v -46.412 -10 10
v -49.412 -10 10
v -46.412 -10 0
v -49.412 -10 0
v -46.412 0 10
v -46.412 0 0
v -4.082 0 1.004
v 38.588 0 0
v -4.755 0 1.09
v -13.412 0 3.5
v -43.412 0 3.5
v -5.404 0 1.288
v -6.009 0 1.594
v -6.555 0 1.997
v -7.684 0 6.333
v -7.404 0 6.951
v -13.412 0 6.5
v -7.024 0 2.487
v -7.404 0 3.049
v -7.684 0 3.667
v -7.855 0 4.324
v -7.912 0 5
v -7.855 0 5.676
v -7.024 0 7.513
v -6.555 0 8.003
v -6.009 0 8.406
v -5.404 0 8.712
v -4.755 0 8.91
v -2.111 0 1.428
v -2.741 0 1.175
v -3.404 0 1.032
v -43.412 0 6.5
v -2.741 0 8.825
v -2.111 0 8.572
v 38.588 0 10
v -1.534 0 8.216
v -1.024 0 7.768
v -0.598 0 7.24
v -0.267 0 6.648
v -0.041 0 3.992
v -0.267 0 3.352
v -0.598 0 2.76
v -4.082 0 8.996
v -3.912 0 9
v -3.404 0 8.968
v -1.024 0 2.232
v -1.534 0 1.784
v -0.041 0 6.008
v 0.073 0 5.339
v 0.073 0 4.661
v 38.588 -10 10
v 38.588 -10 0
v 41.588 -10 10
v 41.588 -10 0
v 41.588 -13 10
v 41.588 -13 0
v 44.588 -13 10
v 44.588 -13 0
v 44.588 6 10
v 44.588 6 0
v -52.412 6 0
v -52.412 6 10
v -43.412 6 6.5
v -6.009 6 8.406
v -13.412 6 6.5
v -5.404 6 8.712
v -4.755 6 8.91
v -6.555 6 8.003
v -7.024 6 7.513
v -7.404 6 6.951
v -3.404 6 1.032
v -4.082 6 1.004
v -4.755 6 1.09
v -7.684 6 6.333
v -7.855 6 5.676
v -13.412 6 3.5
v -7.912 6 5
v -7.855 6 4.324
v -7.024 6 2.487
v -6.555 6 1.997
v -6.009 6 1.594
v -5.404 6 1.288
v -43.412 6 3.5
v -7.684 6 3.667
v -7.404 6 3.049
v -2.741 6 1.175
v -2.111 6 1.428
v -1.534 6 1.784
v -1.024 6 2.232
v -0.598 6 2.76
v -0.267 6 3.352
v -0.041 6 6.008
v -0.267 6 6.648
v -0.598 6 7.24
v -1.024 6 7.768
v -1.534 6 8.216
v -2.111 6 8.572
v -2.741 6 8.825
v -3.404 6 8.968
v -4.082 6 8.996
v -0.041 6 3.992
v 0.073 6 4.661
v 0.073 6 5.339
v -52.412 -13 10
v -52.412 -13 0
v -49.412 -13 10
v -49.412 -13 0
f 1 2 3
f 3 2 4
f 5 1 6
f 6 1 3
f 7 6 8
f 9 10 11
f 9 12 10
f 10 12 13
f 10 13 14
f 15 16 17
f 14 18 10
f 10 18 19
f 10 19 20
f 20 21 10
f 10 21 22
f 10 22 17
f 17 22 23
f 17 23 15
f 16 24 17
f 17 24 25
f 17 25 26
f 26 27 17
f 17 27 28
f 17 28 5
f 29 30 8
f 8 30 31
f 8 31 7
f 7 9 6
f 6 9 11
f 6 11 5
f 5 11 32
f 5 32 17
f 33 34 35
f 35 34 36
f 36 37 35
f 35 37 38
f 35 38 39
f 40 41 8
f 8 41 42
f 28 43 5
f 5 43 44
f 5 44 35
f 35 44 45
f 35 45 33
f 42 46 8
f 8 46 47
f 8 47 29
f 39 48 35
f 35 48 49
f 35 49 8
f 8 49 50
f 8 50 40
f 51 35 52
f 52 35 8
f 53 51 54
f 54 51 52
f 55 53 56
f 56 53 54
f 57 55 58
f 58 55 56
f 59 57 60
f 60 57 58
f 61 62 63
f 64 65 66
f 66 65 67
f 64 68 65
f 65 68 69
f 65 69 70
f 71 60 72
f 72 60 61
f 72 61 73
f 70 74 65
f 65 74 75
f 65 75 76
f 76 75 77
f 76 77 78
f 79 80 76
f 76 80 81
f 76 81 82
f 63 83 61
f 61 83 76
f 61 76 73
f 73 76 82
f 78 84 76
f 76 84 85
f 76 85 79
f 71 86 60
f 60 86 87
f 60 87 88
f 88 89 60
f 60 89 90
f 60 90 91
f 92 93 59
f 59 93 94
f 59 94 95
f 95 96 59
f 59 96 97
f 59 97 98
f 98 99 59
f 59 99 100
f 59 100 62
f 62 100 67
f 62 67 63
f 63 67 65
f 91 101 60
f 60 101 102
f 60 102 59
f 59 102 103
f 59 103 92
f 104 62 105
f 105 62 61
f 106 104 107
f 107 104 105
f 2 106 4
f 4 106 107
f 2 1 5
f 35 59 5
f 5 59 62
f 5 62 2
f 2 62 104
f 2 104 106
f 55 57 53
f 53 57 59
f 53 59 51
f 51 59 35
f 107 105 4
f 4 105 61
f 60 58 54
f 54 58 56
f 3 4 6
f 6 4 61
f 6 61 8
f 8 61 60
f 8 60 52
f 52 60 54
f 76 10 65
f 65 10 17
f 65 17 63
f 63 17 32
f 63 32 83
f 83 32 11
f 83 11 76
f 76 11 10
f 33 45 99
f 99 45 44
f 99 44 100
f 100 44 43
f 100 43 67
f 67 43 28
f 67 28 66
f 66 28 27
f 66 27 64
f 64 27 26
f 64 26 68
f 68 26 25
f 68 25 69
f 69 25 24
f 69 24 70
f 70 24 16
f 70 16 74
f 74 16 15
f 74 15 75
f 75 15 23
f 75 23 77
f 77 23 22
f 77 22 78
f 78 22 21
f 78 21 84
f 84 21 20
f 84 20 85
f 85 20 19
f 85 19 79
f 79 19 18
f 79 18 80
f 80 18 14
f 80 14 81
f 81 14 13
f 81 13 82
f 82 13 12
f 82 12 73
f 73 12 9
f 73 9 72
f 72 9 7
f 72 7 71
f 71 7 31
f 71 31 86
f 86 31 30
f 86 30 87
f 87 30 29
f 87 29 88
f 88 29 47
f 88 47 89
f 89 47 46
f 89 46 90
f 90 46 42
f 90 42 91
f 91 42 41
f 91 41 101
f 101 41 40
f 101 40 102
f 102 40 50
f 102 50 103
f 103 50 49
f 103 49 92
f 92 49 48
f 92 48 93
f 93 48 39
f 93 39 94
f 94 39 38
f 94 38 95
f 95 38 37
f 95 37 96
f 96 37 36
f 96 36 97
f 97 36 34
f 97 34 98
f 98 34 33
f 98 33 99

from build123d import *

# Parameters (mm, degrees)
SALIENTE_EXTRUIR1_DEPTH = 10
CROQUIS4_R              = 4
CROQUIS4_W              = 30
CROQUIS4_H              = 3
CORTAR_EXTRUIR1_DEPTH   = 10


with BuildPart() as part:
    # Croquis2 → Saliente-Extruir1 (new body)
    with BuildSketch(Plane.XY):
        Polygon((-43.412140575, 0), (35.587859425, 0), (38.587859425, 0), (38.587859425, -10), (41.587859425, -10), (41.587859425, -13), (44.587859425, -13), (44.587859425, 6), (-52.412140575, 6), (-52.412140575, -13), (-49.412140575, -13), (-49.412140575, -10), (-46.412140575, -10), (-46.412140575, 0), align=None)
    extrude(amount=SALIENTE_EXTRUIR1_DEPTH)

    # Croquis4 → Cortar-Extruir1 (cut)
    with BuildSketch(Plane(origin=(0, 6, 0), x_dir=(1, 0, 0), z_dir=(0, 1, 0))):
        with Locations((-3.912140575, -5)):
            Circle(CROQUIS4_R)
        with Locations((-28.412140575, -5)):
            Rectangle(CROQUIS4_W, CROQUIS4_H)
    extrude(amount=-CORTAR_EXTRUIR1_DEPTH, mode=Mode.SUBTRACT)


solid = part.part
